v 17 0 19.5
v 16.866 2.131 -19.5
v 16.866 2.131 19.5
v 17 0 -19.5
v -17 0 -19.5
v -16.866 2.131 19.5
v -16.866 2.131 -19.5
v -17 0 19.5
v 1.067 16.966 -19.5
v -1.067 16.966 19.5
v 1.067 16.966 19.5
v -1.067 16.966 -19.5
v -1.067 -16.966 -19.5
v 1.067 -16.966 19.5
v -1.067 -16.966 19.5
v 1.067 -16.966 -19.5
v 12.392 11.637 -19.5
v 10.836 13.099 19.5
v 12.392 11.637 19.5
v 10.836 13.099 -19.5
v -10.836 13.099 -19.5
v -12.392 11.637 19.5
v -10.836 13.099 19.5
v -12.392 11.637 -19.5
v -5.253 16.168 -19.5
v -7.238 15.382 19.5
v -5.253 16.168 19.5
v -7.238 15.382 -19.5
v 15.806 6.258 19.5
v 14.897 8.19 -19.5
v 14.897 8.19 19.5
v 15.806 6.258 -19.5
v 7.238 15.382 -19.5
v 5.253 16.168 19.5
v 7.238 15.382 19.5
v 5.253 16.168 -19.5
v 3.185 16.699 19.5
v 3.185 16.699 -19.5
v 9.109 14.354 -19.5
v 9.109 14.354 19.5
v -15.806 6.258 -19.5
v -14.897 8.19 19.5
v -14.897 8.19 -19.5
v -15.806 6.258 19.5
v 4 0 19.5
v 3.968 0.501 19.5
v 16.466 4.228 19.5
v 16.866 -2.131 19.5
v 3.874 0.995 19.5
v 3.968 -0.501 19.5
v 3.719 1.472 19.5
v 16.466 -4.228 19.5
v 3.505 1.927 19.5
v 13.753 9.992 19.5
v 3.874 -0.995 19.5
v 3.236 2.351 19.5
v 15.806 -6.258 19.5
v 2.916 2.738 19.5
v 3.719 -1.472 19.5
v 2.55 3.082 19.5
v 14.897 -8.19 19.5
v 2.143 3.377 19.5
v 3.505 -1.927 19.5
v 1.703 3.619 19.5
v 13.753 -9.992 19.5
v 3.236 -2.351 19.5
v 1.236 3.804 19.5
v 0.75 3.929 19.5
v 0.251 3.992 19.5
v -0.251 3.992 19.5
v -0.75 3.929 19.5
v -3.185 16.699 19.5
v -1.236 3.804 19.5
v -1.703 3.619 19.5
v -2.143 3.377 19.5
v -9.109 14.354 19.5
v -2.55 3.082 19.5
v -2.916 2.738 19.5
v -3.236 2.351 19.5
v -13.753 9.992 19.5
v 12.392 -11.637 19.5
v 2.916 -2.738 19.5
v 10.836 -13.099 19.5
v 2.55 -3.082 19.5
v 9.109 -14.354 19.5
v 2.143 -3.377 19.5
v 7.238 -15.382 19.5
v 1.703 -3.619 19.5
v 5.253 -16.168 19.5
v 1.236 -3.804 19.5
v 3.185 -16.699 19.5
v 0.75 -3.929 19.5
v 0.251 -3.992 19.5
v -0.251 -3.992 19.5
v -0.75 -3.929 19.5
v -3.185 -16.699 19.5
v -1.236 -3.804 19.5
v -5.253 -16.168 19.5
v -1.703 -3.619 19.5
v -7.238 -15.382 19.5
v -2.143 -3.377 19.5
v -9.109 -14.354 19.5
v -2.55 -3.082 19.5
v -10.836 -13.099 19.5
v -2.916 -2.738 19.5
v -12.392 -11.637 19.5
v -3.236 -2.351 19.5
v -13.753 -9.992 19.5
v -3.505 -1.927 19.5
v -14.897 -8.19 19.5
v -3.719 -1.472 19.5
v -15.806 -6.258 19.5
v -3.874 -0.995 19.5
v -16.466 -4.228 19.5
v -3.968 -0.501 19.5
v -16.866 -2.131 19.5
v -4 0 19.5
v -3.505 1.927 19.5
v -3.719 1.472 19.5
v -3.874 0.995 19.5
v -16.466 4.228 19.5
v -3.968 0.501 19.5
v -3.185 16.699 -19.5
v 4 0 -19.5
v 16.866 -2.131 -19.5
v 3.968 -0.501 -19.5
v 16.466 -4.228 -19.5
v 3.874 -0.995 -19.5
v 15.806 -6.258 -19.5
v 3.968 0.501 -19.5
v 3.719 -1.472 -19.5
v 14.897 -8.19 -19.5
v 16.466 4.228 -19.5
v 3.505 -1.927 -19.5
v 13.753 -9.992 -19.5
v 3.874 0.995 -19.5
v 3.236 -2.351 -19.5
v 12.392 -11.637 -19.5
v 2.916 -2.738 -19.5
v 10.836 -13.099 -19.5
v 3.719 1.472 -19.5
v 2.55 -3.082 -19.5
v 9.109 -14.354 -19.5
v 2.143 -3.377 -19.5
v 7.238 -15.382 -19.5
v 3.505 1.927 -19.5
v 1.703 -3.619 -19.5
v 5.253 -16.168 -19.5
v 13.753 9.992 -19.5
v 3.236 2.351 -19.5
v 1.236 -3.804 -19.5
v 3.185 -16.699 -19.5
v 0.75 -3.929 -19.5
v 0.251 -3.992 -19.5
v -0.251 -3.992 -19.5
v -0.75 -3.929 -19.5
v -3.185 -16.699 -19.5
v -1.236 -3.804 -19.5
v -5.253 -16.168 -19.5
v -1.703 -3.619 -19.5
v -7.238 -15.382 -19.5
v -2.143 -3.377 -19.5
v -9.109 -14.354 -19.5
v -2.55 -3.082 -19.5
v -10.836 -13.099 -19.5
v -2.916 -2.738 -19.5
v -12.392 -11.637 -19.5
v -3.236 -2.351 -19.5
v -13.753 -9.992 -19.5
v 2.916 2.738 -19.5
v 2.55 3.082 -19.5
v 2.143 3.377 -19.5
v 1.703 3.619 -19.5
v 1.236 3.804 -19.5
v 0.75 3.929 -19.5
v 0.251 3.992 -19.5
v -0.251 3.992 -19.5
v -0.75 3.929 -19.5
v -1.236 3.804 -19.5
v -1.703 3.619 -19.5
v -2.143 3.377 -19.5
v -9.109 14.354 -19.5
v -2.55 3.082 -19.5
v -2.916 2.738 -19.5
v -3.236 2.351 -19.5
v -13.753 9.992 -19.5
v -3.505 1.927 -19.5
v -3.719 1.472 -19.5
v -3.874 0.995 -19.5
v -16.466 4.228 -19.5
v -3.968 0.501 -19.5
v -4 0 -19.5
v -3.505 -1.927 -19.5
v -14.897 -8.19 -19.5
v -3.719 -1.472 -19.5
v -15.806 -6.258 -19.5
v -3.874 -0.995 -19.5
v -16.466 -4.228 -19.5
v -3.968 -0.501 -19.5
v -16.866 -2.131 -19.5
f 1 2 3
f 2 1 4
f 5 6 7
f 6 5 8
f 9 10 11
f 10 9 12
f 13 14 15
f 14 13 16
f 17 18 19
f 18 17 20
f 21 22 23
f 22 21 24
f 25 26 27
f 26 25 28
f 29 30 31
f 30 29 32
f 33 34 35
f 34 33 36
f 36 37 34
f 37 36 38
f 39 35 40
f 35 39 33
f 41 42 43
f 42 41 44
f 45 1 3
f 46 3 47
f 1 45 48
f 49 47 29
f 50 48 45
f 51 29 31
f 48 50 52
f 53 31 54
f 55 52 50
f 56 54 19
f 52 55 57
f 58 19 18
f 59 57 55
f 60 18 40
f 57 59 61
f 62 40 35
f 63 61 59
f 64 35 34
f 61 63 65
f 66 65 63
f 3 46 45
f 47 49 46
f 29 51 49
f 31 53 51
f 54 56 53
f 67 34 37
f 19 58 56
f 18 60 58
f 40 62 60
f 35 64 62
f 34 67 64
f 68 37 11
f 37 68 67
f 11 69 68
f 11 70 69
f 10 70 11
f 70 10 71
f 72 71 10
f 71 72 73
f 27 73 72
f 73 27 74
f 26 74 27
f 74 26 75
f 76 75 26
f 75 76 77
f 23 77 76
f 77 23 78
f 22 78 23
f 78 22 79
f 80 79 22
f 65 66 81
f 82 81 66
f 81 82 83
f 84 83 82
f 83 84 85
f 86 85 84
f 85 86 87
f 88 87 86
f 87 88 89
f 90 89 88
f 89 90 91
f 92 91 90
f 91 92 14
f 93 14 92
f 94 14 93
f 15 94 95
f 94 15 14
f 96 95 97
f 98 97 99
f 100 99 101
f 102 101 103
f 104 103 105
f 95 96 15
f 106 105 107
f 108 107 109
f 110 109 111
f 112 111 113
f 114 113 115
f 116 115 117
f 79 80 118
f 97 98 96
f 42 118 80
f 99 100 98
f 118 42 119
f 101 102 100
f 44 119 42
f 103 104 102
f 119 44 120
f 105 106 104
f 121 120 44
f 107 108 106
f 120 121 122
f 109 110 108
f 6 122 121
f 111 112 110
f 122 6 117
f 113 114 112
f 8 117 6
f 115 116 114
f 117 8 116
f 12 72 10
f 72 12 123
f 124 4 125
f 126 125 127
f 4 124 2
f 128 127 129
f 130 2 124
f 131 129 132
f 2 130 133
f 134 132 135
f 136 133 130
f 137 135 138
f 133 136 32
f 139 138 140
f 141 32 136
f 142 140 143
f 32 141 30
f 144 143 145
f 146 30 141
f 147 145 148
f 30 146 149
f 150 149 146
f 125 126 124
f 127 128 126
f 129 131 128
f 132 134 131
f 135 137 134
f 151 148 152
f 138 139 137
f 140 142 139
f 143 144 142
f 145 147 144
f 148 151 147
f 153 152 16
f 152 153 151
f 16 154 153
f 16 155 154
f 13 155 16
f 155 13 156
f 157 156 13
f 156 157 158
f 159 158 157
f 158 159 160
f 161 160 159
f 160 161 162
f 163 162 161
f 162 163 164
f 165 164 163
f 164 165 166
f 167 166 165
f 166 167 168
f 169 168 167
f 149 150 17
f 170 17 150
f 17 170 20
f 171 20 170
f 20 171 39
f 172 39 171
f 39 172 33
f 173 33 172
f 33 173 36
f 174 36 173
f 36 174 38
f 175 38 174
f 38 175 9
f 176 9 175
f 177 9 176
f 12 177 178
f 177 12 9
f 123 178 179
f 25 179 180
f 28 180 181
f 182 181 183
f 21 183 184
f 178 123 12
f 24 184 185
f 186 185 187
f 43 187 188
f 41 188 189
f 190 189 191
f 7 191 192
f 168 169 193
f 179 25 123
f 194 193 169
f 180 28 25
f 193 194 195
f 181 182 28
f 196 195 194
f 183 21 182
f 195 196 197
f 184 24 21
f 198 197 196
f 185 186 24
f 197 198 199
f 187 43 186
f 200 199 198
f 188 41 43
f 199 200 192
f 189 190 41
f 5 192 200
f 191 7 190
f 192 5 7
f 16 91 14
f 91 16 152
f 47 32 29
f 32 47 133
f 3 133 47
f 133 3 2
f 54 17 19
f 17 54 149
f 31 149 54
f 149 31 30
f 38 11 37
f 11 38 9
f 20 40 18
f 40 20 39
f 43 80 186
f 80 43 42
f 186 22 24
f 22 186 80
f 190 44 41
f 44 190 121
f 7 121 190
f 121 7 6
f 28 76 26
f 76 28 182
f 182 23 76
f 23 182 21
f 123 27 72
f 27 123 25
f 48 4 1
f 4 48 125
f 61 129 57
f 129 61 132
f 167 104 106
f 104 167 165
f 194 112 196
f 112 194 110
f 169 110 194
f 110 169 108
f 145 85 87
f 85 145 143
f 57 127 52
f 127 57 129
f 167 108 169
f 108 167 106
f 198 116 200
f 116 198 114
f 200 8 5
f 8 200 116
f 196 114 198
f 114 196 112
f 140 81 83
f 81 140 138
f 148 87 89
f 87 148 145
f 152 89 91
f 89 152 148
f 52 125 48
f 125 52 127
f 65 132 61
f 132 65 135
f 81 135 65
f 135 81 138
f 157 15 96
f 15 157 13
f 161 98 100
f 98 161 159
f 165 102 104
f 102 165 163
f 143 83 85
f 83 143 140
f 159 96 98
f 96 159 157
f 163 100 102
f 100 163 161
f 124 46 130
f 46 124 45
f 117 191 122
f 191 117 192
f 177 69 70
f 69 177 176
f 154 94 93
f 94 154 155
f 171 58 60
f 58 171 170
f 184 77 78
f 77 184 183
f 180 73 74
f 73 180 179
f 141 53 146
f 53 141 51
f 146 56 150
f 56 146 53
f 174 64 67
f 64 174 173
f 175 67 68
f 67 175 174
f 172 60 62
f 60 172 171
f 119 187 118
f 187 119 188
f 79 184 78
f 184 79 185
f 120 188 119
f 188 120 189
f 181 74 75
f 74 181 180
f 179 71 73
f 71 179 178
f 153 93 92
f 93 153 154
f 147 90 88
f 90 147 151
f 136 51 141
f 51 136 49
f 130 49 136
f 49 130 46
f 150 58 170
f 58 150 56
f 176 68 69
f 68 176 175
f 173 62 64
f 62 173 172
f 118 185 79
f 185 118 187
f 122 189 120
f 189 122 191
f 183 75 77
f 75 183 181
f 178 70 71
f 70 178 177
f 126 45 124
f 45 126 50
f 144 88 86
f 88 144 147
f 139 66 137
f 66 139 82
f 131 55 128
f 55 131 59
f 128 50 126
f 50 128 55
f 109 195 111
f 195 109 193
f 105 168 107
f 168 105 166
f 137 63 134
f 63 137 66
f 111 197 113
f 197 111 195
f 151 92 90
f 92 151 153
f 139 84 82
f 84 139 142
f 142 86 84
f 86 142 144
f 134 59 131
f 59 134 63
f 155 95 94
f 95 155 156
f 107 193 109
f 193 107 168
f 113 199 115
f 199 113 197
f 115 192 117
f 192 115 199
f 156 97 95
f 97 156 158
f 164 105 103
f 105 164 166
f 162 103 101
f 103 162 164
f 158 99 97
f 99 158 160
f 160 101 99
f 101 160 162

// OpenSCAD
$fn = 50;


difference() {
	union() {
		translate(v = [0, 0, -19.5000000000]) {
			cylinder(h = 39, r = 17.0000000000);
		}
	}
	union() {
		translate(v = [0, 0, -100.0000000000]) {
			cylinder(h = 200, r = 4);
		}
	}
}
